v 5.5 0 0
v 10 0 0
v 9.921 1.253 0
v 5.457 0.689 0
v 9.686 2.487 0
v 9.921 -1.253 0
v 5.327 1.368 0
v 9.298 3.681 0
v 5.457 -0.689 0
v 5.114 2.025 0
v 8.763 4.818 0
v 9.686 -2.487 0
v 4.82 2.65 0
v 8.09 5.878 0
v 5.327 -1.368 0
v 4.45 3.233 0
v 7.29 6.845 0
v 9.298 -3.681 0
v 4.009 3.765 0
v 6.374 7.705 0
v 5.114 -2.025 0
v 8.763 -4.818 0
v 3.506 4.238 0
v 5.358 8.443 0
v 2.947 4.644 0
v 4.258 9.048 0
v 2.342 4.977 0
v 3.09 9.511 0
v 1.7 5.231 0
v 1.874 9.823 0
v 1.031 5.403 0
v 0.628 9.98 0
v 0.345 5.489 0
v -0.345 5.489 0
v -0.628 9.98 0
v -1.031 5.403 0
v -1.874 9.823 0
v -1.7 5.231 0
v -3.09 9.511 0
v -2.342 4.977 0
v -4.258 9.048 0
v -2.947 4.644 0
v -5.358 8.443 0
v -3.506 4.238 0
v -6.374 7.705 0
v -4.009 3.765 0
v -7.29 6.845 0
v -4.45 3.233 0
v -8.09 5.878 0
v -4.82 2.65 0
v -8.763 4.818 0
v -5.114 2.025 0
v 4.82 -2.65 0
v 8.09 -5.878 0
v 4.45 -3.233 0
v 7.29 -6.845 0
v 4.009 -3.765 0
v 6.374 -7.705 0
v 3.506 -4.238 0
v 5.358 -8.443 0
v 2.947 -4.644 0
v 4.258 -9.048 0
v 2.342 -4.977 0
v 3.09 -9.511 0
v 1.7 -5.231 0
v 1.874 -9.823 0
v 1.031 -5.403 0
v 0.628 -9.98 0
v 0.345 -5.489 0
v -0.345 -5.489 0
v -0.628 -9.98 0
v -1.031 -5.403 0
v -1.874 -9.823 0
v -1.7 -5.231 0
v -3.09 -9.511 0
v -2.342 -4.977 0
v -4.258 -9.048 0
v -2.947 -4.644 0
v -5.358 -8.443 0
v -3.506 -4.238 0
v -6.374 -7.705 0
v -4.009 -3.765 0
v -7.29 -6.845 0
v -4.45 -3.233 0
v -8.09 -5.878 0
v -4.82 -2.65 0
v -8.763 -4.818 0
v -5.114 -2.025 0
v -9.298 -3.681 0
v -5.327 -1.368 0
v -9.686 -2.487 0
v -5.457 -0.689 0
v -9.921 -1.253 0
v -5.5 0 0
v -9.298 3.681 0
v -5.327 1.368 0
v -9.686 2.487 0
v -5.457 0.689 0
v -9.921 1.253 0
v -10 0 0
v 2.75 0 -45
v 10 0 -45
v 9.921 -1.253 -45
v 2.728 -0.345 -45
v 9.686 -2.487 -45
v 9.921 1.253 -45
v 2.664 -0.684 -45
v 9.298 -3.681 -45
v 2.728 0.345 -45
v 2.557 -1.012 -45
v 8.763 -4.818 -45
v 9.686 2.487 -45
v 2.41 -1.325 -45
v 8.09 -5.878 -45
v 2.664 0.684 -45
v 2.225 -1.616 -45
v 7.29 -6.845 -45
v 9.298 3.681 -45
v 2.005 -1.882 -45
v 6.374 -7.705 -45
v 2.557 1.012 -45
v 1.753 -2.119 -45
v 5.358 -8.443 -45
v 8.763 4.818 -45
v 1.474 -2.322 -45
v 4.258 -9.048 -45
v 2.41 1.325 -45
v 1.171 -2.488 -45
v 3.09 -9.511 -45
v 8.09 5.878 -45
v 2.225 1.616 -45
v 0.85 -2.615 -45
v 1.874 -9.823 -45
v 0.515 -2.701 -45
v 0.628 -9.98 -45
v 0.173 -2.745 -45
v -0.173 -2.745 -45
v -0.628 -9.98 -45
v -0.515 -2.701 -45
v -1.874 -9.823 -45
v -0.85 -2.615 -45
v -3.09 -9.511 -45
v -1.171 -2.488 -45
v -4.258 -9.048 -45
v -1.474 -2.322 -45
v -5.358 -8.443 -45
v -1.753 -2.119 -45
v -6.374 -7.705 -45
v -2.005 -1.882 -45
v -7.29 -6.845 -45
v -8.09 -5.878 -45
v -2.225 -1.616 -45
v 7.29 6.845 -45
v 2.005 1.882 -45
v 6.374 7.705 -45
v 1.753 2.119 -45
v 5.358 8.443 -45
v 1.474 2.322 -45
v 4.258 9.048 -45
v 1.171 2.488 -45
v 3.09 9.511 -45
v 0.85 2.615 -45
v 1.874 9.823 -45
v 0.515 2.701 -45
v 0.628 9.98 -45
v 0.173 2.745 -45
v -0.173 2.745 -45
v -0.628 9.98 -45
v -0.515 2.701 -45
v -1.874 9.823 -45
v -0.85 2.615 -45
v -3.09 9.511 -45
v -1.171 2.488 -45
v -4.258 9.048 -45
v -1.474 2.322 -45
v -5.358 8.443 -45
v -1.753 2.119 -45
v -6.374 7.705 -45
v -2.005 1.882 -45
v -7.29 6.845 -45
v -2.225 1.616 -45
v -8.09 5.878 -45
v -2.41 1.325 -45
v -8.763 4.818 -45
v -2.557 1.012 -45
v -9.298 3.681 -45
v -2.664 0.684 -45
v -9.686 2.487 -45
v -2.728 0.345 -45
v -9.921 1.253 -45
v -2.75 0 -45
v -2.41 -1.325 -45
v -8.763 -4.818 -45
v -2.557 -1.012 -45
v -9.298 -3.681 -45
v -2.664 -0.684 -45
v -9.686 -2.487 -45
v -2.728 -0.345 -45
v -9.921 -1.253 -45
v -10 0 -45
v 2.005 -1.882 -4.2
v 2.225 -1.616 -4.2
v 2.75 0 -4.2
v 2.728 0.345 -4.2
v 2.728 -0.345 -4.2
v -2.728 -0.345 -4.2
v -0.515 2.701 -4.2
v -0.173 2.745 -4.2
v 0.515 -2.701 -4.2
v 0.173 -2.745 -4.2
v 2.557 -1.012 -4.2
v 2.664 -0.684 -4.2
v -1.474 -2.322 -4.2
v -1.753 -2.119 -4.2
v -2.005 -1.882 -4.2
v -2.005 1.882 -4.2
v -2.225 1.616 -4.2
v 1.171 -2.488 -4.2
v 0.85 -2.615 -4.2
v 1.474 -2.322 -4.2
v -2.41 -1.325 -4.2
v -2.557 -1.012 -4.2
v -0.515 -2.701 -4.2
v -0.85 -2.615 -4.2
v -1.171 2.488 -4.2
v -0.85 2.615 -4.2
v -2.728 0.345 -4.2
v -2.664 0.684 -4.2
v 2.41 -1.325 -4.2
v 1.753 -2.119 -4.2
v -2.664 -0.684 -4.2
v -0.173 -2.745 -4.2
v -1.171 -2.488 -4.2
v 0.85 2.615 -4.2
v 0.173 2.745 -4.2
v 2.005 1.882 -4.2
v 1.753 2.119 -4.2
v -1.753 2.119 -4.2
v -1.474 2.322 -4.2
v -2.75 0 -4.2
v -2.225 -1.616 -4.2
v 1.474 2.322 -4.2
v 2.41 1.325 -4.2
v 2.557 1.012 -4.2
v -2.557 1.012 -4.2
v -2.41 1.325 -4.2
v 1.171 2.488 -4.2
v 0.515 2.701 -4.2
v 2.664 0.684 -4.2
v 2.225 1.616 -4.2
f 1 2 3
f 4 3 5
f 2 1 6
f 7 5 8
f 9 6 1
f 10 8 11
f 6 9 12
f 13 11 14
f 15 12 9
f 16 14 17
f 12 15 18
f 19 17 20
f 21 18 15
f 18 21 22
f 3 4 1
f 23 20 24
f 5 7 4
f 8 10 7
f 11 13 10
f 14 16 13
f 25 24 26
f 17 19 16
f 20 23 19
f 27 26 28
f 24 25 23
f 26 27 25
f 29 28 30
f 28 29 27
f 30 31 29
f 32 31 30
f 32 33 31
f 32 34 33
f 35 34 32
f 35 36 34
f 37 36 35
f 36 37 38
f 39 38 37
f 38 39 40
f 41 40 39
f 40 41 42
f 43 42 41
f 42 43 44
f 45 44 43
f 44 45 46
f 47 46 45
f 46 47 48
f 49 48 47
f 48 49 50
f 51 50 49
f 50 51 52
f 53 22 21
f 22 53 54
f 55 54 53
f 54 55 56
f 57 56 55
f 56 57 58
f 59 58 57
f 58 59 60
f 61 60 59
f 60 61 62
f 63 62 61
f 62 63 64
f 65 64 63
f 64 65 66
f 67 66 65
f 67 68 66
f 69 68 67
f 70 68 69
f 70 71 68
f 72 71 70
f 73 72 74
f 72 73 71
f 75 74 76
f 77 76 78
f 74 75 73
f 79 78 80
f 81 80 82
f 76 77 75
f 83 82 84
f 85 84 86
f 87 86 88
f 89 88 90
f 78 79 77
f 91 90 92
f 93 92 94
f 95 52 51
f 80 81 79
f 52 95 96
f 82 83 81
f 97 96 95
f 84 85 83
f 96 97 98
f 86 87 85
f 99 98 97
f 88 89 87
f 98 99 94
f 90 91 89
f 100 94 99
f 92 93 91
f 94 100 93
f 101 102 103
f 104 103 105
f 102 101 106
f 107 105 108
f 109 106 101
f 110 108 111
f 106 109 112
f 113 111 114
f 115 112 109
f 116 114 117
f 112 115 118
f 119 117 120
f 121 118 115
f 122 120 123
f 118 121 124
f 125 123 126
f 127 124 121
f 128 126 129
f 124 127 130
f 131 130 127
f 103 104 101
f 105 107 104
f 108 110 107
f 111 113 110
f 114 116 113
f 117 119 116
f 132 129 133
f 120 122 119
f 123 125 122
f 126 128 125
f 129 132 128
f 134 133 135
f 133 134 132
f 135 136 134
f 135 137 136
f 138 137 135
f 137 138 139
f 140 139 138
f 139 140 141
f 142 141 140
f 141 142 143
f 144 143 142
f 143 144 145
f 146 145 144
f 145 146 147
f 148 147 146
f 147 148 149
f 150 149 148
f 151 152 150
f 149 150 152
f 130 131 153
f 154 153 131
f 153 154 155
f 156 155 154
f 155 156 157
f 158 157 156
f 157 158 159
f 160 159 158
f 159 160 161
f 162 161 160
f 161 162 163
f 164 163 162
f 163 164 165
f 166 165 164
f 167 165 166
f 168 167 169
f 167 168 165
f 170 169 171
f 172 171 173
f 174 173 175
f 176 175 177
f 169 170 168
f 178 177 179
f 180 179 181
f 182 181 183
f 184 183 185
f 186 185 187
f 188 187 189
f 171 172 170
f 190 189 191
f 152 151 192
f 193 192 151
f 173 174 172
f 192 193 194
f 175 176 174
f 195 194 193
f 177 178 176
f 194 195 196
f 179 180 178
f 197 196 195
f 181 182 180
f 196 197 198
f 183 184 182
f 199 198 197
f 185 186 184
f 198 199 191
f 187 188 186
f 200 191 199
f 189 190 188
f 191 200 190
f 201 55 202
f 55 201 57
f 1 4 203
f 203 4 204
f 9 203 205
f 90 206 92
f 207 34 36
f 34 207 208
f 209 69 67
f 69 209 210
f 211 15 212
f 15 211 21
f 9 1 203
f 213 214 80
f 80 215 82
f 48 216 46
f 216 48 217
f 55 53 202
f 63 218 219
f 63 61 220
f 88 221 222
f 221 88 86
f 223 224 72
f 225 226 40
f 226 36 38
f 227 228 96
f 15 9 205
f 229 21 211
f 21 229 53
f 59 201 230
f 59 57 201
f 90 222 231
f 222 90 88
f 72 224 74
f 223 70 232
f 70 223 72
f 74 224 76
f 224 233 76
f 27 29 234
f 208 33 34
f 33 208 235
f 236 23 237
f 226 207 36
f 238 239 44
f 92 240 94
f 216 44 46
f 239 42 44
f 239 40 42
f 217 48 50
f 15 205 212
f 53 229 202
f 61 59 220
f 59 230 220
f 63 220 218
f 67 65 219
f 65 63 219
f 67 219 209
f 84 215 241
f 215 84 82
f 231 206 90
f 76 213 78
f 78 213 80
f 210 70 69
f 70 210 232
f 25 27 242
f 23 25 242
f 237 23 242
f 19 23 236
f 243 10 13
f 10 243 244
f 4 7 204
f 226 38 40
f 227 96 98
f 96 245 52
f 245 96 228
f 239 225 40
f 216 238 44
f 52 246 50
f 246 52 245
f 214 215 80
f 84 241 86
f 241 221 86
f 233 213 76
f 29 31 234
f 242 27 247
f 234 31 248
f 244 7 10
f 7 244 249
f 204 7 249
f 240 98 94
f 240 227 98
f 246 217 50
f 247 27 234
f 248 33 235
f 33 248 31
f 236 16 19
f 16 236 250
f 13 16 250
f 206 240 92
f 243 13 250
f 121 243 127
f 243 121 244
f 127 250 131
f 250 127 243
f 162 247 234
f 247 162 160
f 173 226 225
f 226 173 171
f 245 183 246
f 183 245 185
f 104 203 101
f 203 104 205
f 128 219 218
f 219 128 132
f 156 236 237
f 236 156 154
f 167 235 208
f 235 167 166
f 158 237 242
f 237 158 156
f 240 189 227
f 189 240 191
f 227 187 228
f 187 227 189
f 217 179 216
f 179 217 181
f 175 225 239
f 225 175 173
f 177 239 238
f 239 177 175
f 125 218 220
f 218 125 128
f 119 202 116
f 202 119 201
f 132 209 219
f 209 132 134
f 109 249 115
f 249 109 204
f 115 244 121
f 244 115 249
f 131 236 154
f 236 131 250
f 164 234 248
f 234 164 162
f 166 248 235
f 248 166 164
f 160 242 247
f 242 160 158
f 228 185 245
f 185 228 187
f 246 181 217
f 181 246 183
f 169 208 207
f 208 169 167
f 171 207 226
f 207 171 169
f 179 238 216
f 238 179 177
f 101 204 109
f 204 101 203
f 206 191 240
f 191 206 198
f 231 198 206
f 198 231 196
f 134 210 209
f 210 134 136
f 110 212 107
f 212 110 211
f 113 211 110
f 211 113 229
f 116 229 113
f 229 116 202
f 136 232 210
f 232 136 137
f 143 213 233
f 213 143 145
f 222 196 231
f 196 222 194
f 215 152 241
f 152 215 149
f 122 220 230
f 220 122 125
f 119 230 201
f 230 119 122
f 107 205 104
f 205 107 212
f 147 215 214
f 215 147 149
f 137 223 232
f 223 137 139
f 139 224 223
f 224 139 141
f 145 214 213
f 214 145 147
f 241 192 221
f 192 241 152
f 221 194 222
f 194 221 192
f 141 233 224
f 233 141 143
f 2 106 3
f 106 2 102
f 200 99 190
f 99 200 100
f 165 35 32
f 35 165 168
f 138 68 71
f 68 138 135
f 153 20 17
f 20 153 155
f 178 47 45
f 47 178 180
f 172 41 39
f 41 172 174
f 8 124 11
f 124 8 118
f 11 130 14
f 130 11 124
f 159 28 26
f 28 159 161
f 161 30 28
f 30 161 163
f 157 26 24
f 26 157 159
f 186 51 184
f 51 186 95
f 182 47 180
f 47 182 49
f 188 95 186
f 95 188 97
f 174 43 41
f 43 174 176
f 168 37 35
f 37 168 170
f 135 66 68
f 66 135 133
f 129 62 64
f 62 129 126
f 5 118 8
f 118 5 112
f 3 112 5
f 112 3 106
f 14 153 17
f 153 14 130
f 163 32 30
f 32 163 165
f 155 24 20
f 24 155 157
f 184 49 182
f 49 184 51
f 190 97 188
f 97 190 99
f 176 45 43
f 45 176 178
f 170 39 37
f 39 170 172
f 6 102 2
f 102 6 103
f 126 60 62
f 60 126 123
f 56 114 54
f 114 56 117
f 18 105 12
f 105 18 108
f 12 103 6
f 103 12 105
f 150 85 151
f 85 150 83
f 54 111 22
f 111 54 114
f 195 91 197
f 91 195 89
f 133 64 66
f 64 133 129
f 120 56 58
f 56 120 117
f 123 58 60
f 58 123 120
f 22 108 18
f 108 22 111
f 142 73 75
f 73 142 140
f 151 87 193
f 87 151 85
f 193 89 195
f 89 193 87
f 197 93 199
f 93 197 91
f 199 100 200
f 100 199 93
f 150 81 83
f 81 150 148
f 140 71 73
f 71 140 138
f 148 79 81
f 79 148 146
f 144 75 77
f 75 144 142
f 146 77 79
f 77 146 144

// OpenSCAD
$fn = 50;


difference() {
	union() {
		translate(v = [0, 0, -45.0000000000]) {
			cylinder(h = 45, r = 10.0000000000);
		}
	}
	union() {
		translate(v = [0, 0, 0]) {
			rotate(a = [0, 0, 0]) {
				difference() {
					union() {
						#translate(v = [0, 0, -45.0000000000]) {
							cylinder(h = 45, r = 2.2500000000);
						}
						#translate(v = [0, 0, -4.2000000000]) {
							cylinder(h = 4.2000000000, r = 10.0000000000, r1 = 2.7500000000, r2 = 5.5000000000);
						}
						#translate(v = [0, 0, -45.0000000000]) {
							cylinder(h = 45, r = 2.7500000000);
						}
						#translate(v = [0, 0, -45.0000000000]) {
							cylinder(h = 45, r = 2.2500000000);
						}
					}
					union();
				}
			}
		}
	}
}
